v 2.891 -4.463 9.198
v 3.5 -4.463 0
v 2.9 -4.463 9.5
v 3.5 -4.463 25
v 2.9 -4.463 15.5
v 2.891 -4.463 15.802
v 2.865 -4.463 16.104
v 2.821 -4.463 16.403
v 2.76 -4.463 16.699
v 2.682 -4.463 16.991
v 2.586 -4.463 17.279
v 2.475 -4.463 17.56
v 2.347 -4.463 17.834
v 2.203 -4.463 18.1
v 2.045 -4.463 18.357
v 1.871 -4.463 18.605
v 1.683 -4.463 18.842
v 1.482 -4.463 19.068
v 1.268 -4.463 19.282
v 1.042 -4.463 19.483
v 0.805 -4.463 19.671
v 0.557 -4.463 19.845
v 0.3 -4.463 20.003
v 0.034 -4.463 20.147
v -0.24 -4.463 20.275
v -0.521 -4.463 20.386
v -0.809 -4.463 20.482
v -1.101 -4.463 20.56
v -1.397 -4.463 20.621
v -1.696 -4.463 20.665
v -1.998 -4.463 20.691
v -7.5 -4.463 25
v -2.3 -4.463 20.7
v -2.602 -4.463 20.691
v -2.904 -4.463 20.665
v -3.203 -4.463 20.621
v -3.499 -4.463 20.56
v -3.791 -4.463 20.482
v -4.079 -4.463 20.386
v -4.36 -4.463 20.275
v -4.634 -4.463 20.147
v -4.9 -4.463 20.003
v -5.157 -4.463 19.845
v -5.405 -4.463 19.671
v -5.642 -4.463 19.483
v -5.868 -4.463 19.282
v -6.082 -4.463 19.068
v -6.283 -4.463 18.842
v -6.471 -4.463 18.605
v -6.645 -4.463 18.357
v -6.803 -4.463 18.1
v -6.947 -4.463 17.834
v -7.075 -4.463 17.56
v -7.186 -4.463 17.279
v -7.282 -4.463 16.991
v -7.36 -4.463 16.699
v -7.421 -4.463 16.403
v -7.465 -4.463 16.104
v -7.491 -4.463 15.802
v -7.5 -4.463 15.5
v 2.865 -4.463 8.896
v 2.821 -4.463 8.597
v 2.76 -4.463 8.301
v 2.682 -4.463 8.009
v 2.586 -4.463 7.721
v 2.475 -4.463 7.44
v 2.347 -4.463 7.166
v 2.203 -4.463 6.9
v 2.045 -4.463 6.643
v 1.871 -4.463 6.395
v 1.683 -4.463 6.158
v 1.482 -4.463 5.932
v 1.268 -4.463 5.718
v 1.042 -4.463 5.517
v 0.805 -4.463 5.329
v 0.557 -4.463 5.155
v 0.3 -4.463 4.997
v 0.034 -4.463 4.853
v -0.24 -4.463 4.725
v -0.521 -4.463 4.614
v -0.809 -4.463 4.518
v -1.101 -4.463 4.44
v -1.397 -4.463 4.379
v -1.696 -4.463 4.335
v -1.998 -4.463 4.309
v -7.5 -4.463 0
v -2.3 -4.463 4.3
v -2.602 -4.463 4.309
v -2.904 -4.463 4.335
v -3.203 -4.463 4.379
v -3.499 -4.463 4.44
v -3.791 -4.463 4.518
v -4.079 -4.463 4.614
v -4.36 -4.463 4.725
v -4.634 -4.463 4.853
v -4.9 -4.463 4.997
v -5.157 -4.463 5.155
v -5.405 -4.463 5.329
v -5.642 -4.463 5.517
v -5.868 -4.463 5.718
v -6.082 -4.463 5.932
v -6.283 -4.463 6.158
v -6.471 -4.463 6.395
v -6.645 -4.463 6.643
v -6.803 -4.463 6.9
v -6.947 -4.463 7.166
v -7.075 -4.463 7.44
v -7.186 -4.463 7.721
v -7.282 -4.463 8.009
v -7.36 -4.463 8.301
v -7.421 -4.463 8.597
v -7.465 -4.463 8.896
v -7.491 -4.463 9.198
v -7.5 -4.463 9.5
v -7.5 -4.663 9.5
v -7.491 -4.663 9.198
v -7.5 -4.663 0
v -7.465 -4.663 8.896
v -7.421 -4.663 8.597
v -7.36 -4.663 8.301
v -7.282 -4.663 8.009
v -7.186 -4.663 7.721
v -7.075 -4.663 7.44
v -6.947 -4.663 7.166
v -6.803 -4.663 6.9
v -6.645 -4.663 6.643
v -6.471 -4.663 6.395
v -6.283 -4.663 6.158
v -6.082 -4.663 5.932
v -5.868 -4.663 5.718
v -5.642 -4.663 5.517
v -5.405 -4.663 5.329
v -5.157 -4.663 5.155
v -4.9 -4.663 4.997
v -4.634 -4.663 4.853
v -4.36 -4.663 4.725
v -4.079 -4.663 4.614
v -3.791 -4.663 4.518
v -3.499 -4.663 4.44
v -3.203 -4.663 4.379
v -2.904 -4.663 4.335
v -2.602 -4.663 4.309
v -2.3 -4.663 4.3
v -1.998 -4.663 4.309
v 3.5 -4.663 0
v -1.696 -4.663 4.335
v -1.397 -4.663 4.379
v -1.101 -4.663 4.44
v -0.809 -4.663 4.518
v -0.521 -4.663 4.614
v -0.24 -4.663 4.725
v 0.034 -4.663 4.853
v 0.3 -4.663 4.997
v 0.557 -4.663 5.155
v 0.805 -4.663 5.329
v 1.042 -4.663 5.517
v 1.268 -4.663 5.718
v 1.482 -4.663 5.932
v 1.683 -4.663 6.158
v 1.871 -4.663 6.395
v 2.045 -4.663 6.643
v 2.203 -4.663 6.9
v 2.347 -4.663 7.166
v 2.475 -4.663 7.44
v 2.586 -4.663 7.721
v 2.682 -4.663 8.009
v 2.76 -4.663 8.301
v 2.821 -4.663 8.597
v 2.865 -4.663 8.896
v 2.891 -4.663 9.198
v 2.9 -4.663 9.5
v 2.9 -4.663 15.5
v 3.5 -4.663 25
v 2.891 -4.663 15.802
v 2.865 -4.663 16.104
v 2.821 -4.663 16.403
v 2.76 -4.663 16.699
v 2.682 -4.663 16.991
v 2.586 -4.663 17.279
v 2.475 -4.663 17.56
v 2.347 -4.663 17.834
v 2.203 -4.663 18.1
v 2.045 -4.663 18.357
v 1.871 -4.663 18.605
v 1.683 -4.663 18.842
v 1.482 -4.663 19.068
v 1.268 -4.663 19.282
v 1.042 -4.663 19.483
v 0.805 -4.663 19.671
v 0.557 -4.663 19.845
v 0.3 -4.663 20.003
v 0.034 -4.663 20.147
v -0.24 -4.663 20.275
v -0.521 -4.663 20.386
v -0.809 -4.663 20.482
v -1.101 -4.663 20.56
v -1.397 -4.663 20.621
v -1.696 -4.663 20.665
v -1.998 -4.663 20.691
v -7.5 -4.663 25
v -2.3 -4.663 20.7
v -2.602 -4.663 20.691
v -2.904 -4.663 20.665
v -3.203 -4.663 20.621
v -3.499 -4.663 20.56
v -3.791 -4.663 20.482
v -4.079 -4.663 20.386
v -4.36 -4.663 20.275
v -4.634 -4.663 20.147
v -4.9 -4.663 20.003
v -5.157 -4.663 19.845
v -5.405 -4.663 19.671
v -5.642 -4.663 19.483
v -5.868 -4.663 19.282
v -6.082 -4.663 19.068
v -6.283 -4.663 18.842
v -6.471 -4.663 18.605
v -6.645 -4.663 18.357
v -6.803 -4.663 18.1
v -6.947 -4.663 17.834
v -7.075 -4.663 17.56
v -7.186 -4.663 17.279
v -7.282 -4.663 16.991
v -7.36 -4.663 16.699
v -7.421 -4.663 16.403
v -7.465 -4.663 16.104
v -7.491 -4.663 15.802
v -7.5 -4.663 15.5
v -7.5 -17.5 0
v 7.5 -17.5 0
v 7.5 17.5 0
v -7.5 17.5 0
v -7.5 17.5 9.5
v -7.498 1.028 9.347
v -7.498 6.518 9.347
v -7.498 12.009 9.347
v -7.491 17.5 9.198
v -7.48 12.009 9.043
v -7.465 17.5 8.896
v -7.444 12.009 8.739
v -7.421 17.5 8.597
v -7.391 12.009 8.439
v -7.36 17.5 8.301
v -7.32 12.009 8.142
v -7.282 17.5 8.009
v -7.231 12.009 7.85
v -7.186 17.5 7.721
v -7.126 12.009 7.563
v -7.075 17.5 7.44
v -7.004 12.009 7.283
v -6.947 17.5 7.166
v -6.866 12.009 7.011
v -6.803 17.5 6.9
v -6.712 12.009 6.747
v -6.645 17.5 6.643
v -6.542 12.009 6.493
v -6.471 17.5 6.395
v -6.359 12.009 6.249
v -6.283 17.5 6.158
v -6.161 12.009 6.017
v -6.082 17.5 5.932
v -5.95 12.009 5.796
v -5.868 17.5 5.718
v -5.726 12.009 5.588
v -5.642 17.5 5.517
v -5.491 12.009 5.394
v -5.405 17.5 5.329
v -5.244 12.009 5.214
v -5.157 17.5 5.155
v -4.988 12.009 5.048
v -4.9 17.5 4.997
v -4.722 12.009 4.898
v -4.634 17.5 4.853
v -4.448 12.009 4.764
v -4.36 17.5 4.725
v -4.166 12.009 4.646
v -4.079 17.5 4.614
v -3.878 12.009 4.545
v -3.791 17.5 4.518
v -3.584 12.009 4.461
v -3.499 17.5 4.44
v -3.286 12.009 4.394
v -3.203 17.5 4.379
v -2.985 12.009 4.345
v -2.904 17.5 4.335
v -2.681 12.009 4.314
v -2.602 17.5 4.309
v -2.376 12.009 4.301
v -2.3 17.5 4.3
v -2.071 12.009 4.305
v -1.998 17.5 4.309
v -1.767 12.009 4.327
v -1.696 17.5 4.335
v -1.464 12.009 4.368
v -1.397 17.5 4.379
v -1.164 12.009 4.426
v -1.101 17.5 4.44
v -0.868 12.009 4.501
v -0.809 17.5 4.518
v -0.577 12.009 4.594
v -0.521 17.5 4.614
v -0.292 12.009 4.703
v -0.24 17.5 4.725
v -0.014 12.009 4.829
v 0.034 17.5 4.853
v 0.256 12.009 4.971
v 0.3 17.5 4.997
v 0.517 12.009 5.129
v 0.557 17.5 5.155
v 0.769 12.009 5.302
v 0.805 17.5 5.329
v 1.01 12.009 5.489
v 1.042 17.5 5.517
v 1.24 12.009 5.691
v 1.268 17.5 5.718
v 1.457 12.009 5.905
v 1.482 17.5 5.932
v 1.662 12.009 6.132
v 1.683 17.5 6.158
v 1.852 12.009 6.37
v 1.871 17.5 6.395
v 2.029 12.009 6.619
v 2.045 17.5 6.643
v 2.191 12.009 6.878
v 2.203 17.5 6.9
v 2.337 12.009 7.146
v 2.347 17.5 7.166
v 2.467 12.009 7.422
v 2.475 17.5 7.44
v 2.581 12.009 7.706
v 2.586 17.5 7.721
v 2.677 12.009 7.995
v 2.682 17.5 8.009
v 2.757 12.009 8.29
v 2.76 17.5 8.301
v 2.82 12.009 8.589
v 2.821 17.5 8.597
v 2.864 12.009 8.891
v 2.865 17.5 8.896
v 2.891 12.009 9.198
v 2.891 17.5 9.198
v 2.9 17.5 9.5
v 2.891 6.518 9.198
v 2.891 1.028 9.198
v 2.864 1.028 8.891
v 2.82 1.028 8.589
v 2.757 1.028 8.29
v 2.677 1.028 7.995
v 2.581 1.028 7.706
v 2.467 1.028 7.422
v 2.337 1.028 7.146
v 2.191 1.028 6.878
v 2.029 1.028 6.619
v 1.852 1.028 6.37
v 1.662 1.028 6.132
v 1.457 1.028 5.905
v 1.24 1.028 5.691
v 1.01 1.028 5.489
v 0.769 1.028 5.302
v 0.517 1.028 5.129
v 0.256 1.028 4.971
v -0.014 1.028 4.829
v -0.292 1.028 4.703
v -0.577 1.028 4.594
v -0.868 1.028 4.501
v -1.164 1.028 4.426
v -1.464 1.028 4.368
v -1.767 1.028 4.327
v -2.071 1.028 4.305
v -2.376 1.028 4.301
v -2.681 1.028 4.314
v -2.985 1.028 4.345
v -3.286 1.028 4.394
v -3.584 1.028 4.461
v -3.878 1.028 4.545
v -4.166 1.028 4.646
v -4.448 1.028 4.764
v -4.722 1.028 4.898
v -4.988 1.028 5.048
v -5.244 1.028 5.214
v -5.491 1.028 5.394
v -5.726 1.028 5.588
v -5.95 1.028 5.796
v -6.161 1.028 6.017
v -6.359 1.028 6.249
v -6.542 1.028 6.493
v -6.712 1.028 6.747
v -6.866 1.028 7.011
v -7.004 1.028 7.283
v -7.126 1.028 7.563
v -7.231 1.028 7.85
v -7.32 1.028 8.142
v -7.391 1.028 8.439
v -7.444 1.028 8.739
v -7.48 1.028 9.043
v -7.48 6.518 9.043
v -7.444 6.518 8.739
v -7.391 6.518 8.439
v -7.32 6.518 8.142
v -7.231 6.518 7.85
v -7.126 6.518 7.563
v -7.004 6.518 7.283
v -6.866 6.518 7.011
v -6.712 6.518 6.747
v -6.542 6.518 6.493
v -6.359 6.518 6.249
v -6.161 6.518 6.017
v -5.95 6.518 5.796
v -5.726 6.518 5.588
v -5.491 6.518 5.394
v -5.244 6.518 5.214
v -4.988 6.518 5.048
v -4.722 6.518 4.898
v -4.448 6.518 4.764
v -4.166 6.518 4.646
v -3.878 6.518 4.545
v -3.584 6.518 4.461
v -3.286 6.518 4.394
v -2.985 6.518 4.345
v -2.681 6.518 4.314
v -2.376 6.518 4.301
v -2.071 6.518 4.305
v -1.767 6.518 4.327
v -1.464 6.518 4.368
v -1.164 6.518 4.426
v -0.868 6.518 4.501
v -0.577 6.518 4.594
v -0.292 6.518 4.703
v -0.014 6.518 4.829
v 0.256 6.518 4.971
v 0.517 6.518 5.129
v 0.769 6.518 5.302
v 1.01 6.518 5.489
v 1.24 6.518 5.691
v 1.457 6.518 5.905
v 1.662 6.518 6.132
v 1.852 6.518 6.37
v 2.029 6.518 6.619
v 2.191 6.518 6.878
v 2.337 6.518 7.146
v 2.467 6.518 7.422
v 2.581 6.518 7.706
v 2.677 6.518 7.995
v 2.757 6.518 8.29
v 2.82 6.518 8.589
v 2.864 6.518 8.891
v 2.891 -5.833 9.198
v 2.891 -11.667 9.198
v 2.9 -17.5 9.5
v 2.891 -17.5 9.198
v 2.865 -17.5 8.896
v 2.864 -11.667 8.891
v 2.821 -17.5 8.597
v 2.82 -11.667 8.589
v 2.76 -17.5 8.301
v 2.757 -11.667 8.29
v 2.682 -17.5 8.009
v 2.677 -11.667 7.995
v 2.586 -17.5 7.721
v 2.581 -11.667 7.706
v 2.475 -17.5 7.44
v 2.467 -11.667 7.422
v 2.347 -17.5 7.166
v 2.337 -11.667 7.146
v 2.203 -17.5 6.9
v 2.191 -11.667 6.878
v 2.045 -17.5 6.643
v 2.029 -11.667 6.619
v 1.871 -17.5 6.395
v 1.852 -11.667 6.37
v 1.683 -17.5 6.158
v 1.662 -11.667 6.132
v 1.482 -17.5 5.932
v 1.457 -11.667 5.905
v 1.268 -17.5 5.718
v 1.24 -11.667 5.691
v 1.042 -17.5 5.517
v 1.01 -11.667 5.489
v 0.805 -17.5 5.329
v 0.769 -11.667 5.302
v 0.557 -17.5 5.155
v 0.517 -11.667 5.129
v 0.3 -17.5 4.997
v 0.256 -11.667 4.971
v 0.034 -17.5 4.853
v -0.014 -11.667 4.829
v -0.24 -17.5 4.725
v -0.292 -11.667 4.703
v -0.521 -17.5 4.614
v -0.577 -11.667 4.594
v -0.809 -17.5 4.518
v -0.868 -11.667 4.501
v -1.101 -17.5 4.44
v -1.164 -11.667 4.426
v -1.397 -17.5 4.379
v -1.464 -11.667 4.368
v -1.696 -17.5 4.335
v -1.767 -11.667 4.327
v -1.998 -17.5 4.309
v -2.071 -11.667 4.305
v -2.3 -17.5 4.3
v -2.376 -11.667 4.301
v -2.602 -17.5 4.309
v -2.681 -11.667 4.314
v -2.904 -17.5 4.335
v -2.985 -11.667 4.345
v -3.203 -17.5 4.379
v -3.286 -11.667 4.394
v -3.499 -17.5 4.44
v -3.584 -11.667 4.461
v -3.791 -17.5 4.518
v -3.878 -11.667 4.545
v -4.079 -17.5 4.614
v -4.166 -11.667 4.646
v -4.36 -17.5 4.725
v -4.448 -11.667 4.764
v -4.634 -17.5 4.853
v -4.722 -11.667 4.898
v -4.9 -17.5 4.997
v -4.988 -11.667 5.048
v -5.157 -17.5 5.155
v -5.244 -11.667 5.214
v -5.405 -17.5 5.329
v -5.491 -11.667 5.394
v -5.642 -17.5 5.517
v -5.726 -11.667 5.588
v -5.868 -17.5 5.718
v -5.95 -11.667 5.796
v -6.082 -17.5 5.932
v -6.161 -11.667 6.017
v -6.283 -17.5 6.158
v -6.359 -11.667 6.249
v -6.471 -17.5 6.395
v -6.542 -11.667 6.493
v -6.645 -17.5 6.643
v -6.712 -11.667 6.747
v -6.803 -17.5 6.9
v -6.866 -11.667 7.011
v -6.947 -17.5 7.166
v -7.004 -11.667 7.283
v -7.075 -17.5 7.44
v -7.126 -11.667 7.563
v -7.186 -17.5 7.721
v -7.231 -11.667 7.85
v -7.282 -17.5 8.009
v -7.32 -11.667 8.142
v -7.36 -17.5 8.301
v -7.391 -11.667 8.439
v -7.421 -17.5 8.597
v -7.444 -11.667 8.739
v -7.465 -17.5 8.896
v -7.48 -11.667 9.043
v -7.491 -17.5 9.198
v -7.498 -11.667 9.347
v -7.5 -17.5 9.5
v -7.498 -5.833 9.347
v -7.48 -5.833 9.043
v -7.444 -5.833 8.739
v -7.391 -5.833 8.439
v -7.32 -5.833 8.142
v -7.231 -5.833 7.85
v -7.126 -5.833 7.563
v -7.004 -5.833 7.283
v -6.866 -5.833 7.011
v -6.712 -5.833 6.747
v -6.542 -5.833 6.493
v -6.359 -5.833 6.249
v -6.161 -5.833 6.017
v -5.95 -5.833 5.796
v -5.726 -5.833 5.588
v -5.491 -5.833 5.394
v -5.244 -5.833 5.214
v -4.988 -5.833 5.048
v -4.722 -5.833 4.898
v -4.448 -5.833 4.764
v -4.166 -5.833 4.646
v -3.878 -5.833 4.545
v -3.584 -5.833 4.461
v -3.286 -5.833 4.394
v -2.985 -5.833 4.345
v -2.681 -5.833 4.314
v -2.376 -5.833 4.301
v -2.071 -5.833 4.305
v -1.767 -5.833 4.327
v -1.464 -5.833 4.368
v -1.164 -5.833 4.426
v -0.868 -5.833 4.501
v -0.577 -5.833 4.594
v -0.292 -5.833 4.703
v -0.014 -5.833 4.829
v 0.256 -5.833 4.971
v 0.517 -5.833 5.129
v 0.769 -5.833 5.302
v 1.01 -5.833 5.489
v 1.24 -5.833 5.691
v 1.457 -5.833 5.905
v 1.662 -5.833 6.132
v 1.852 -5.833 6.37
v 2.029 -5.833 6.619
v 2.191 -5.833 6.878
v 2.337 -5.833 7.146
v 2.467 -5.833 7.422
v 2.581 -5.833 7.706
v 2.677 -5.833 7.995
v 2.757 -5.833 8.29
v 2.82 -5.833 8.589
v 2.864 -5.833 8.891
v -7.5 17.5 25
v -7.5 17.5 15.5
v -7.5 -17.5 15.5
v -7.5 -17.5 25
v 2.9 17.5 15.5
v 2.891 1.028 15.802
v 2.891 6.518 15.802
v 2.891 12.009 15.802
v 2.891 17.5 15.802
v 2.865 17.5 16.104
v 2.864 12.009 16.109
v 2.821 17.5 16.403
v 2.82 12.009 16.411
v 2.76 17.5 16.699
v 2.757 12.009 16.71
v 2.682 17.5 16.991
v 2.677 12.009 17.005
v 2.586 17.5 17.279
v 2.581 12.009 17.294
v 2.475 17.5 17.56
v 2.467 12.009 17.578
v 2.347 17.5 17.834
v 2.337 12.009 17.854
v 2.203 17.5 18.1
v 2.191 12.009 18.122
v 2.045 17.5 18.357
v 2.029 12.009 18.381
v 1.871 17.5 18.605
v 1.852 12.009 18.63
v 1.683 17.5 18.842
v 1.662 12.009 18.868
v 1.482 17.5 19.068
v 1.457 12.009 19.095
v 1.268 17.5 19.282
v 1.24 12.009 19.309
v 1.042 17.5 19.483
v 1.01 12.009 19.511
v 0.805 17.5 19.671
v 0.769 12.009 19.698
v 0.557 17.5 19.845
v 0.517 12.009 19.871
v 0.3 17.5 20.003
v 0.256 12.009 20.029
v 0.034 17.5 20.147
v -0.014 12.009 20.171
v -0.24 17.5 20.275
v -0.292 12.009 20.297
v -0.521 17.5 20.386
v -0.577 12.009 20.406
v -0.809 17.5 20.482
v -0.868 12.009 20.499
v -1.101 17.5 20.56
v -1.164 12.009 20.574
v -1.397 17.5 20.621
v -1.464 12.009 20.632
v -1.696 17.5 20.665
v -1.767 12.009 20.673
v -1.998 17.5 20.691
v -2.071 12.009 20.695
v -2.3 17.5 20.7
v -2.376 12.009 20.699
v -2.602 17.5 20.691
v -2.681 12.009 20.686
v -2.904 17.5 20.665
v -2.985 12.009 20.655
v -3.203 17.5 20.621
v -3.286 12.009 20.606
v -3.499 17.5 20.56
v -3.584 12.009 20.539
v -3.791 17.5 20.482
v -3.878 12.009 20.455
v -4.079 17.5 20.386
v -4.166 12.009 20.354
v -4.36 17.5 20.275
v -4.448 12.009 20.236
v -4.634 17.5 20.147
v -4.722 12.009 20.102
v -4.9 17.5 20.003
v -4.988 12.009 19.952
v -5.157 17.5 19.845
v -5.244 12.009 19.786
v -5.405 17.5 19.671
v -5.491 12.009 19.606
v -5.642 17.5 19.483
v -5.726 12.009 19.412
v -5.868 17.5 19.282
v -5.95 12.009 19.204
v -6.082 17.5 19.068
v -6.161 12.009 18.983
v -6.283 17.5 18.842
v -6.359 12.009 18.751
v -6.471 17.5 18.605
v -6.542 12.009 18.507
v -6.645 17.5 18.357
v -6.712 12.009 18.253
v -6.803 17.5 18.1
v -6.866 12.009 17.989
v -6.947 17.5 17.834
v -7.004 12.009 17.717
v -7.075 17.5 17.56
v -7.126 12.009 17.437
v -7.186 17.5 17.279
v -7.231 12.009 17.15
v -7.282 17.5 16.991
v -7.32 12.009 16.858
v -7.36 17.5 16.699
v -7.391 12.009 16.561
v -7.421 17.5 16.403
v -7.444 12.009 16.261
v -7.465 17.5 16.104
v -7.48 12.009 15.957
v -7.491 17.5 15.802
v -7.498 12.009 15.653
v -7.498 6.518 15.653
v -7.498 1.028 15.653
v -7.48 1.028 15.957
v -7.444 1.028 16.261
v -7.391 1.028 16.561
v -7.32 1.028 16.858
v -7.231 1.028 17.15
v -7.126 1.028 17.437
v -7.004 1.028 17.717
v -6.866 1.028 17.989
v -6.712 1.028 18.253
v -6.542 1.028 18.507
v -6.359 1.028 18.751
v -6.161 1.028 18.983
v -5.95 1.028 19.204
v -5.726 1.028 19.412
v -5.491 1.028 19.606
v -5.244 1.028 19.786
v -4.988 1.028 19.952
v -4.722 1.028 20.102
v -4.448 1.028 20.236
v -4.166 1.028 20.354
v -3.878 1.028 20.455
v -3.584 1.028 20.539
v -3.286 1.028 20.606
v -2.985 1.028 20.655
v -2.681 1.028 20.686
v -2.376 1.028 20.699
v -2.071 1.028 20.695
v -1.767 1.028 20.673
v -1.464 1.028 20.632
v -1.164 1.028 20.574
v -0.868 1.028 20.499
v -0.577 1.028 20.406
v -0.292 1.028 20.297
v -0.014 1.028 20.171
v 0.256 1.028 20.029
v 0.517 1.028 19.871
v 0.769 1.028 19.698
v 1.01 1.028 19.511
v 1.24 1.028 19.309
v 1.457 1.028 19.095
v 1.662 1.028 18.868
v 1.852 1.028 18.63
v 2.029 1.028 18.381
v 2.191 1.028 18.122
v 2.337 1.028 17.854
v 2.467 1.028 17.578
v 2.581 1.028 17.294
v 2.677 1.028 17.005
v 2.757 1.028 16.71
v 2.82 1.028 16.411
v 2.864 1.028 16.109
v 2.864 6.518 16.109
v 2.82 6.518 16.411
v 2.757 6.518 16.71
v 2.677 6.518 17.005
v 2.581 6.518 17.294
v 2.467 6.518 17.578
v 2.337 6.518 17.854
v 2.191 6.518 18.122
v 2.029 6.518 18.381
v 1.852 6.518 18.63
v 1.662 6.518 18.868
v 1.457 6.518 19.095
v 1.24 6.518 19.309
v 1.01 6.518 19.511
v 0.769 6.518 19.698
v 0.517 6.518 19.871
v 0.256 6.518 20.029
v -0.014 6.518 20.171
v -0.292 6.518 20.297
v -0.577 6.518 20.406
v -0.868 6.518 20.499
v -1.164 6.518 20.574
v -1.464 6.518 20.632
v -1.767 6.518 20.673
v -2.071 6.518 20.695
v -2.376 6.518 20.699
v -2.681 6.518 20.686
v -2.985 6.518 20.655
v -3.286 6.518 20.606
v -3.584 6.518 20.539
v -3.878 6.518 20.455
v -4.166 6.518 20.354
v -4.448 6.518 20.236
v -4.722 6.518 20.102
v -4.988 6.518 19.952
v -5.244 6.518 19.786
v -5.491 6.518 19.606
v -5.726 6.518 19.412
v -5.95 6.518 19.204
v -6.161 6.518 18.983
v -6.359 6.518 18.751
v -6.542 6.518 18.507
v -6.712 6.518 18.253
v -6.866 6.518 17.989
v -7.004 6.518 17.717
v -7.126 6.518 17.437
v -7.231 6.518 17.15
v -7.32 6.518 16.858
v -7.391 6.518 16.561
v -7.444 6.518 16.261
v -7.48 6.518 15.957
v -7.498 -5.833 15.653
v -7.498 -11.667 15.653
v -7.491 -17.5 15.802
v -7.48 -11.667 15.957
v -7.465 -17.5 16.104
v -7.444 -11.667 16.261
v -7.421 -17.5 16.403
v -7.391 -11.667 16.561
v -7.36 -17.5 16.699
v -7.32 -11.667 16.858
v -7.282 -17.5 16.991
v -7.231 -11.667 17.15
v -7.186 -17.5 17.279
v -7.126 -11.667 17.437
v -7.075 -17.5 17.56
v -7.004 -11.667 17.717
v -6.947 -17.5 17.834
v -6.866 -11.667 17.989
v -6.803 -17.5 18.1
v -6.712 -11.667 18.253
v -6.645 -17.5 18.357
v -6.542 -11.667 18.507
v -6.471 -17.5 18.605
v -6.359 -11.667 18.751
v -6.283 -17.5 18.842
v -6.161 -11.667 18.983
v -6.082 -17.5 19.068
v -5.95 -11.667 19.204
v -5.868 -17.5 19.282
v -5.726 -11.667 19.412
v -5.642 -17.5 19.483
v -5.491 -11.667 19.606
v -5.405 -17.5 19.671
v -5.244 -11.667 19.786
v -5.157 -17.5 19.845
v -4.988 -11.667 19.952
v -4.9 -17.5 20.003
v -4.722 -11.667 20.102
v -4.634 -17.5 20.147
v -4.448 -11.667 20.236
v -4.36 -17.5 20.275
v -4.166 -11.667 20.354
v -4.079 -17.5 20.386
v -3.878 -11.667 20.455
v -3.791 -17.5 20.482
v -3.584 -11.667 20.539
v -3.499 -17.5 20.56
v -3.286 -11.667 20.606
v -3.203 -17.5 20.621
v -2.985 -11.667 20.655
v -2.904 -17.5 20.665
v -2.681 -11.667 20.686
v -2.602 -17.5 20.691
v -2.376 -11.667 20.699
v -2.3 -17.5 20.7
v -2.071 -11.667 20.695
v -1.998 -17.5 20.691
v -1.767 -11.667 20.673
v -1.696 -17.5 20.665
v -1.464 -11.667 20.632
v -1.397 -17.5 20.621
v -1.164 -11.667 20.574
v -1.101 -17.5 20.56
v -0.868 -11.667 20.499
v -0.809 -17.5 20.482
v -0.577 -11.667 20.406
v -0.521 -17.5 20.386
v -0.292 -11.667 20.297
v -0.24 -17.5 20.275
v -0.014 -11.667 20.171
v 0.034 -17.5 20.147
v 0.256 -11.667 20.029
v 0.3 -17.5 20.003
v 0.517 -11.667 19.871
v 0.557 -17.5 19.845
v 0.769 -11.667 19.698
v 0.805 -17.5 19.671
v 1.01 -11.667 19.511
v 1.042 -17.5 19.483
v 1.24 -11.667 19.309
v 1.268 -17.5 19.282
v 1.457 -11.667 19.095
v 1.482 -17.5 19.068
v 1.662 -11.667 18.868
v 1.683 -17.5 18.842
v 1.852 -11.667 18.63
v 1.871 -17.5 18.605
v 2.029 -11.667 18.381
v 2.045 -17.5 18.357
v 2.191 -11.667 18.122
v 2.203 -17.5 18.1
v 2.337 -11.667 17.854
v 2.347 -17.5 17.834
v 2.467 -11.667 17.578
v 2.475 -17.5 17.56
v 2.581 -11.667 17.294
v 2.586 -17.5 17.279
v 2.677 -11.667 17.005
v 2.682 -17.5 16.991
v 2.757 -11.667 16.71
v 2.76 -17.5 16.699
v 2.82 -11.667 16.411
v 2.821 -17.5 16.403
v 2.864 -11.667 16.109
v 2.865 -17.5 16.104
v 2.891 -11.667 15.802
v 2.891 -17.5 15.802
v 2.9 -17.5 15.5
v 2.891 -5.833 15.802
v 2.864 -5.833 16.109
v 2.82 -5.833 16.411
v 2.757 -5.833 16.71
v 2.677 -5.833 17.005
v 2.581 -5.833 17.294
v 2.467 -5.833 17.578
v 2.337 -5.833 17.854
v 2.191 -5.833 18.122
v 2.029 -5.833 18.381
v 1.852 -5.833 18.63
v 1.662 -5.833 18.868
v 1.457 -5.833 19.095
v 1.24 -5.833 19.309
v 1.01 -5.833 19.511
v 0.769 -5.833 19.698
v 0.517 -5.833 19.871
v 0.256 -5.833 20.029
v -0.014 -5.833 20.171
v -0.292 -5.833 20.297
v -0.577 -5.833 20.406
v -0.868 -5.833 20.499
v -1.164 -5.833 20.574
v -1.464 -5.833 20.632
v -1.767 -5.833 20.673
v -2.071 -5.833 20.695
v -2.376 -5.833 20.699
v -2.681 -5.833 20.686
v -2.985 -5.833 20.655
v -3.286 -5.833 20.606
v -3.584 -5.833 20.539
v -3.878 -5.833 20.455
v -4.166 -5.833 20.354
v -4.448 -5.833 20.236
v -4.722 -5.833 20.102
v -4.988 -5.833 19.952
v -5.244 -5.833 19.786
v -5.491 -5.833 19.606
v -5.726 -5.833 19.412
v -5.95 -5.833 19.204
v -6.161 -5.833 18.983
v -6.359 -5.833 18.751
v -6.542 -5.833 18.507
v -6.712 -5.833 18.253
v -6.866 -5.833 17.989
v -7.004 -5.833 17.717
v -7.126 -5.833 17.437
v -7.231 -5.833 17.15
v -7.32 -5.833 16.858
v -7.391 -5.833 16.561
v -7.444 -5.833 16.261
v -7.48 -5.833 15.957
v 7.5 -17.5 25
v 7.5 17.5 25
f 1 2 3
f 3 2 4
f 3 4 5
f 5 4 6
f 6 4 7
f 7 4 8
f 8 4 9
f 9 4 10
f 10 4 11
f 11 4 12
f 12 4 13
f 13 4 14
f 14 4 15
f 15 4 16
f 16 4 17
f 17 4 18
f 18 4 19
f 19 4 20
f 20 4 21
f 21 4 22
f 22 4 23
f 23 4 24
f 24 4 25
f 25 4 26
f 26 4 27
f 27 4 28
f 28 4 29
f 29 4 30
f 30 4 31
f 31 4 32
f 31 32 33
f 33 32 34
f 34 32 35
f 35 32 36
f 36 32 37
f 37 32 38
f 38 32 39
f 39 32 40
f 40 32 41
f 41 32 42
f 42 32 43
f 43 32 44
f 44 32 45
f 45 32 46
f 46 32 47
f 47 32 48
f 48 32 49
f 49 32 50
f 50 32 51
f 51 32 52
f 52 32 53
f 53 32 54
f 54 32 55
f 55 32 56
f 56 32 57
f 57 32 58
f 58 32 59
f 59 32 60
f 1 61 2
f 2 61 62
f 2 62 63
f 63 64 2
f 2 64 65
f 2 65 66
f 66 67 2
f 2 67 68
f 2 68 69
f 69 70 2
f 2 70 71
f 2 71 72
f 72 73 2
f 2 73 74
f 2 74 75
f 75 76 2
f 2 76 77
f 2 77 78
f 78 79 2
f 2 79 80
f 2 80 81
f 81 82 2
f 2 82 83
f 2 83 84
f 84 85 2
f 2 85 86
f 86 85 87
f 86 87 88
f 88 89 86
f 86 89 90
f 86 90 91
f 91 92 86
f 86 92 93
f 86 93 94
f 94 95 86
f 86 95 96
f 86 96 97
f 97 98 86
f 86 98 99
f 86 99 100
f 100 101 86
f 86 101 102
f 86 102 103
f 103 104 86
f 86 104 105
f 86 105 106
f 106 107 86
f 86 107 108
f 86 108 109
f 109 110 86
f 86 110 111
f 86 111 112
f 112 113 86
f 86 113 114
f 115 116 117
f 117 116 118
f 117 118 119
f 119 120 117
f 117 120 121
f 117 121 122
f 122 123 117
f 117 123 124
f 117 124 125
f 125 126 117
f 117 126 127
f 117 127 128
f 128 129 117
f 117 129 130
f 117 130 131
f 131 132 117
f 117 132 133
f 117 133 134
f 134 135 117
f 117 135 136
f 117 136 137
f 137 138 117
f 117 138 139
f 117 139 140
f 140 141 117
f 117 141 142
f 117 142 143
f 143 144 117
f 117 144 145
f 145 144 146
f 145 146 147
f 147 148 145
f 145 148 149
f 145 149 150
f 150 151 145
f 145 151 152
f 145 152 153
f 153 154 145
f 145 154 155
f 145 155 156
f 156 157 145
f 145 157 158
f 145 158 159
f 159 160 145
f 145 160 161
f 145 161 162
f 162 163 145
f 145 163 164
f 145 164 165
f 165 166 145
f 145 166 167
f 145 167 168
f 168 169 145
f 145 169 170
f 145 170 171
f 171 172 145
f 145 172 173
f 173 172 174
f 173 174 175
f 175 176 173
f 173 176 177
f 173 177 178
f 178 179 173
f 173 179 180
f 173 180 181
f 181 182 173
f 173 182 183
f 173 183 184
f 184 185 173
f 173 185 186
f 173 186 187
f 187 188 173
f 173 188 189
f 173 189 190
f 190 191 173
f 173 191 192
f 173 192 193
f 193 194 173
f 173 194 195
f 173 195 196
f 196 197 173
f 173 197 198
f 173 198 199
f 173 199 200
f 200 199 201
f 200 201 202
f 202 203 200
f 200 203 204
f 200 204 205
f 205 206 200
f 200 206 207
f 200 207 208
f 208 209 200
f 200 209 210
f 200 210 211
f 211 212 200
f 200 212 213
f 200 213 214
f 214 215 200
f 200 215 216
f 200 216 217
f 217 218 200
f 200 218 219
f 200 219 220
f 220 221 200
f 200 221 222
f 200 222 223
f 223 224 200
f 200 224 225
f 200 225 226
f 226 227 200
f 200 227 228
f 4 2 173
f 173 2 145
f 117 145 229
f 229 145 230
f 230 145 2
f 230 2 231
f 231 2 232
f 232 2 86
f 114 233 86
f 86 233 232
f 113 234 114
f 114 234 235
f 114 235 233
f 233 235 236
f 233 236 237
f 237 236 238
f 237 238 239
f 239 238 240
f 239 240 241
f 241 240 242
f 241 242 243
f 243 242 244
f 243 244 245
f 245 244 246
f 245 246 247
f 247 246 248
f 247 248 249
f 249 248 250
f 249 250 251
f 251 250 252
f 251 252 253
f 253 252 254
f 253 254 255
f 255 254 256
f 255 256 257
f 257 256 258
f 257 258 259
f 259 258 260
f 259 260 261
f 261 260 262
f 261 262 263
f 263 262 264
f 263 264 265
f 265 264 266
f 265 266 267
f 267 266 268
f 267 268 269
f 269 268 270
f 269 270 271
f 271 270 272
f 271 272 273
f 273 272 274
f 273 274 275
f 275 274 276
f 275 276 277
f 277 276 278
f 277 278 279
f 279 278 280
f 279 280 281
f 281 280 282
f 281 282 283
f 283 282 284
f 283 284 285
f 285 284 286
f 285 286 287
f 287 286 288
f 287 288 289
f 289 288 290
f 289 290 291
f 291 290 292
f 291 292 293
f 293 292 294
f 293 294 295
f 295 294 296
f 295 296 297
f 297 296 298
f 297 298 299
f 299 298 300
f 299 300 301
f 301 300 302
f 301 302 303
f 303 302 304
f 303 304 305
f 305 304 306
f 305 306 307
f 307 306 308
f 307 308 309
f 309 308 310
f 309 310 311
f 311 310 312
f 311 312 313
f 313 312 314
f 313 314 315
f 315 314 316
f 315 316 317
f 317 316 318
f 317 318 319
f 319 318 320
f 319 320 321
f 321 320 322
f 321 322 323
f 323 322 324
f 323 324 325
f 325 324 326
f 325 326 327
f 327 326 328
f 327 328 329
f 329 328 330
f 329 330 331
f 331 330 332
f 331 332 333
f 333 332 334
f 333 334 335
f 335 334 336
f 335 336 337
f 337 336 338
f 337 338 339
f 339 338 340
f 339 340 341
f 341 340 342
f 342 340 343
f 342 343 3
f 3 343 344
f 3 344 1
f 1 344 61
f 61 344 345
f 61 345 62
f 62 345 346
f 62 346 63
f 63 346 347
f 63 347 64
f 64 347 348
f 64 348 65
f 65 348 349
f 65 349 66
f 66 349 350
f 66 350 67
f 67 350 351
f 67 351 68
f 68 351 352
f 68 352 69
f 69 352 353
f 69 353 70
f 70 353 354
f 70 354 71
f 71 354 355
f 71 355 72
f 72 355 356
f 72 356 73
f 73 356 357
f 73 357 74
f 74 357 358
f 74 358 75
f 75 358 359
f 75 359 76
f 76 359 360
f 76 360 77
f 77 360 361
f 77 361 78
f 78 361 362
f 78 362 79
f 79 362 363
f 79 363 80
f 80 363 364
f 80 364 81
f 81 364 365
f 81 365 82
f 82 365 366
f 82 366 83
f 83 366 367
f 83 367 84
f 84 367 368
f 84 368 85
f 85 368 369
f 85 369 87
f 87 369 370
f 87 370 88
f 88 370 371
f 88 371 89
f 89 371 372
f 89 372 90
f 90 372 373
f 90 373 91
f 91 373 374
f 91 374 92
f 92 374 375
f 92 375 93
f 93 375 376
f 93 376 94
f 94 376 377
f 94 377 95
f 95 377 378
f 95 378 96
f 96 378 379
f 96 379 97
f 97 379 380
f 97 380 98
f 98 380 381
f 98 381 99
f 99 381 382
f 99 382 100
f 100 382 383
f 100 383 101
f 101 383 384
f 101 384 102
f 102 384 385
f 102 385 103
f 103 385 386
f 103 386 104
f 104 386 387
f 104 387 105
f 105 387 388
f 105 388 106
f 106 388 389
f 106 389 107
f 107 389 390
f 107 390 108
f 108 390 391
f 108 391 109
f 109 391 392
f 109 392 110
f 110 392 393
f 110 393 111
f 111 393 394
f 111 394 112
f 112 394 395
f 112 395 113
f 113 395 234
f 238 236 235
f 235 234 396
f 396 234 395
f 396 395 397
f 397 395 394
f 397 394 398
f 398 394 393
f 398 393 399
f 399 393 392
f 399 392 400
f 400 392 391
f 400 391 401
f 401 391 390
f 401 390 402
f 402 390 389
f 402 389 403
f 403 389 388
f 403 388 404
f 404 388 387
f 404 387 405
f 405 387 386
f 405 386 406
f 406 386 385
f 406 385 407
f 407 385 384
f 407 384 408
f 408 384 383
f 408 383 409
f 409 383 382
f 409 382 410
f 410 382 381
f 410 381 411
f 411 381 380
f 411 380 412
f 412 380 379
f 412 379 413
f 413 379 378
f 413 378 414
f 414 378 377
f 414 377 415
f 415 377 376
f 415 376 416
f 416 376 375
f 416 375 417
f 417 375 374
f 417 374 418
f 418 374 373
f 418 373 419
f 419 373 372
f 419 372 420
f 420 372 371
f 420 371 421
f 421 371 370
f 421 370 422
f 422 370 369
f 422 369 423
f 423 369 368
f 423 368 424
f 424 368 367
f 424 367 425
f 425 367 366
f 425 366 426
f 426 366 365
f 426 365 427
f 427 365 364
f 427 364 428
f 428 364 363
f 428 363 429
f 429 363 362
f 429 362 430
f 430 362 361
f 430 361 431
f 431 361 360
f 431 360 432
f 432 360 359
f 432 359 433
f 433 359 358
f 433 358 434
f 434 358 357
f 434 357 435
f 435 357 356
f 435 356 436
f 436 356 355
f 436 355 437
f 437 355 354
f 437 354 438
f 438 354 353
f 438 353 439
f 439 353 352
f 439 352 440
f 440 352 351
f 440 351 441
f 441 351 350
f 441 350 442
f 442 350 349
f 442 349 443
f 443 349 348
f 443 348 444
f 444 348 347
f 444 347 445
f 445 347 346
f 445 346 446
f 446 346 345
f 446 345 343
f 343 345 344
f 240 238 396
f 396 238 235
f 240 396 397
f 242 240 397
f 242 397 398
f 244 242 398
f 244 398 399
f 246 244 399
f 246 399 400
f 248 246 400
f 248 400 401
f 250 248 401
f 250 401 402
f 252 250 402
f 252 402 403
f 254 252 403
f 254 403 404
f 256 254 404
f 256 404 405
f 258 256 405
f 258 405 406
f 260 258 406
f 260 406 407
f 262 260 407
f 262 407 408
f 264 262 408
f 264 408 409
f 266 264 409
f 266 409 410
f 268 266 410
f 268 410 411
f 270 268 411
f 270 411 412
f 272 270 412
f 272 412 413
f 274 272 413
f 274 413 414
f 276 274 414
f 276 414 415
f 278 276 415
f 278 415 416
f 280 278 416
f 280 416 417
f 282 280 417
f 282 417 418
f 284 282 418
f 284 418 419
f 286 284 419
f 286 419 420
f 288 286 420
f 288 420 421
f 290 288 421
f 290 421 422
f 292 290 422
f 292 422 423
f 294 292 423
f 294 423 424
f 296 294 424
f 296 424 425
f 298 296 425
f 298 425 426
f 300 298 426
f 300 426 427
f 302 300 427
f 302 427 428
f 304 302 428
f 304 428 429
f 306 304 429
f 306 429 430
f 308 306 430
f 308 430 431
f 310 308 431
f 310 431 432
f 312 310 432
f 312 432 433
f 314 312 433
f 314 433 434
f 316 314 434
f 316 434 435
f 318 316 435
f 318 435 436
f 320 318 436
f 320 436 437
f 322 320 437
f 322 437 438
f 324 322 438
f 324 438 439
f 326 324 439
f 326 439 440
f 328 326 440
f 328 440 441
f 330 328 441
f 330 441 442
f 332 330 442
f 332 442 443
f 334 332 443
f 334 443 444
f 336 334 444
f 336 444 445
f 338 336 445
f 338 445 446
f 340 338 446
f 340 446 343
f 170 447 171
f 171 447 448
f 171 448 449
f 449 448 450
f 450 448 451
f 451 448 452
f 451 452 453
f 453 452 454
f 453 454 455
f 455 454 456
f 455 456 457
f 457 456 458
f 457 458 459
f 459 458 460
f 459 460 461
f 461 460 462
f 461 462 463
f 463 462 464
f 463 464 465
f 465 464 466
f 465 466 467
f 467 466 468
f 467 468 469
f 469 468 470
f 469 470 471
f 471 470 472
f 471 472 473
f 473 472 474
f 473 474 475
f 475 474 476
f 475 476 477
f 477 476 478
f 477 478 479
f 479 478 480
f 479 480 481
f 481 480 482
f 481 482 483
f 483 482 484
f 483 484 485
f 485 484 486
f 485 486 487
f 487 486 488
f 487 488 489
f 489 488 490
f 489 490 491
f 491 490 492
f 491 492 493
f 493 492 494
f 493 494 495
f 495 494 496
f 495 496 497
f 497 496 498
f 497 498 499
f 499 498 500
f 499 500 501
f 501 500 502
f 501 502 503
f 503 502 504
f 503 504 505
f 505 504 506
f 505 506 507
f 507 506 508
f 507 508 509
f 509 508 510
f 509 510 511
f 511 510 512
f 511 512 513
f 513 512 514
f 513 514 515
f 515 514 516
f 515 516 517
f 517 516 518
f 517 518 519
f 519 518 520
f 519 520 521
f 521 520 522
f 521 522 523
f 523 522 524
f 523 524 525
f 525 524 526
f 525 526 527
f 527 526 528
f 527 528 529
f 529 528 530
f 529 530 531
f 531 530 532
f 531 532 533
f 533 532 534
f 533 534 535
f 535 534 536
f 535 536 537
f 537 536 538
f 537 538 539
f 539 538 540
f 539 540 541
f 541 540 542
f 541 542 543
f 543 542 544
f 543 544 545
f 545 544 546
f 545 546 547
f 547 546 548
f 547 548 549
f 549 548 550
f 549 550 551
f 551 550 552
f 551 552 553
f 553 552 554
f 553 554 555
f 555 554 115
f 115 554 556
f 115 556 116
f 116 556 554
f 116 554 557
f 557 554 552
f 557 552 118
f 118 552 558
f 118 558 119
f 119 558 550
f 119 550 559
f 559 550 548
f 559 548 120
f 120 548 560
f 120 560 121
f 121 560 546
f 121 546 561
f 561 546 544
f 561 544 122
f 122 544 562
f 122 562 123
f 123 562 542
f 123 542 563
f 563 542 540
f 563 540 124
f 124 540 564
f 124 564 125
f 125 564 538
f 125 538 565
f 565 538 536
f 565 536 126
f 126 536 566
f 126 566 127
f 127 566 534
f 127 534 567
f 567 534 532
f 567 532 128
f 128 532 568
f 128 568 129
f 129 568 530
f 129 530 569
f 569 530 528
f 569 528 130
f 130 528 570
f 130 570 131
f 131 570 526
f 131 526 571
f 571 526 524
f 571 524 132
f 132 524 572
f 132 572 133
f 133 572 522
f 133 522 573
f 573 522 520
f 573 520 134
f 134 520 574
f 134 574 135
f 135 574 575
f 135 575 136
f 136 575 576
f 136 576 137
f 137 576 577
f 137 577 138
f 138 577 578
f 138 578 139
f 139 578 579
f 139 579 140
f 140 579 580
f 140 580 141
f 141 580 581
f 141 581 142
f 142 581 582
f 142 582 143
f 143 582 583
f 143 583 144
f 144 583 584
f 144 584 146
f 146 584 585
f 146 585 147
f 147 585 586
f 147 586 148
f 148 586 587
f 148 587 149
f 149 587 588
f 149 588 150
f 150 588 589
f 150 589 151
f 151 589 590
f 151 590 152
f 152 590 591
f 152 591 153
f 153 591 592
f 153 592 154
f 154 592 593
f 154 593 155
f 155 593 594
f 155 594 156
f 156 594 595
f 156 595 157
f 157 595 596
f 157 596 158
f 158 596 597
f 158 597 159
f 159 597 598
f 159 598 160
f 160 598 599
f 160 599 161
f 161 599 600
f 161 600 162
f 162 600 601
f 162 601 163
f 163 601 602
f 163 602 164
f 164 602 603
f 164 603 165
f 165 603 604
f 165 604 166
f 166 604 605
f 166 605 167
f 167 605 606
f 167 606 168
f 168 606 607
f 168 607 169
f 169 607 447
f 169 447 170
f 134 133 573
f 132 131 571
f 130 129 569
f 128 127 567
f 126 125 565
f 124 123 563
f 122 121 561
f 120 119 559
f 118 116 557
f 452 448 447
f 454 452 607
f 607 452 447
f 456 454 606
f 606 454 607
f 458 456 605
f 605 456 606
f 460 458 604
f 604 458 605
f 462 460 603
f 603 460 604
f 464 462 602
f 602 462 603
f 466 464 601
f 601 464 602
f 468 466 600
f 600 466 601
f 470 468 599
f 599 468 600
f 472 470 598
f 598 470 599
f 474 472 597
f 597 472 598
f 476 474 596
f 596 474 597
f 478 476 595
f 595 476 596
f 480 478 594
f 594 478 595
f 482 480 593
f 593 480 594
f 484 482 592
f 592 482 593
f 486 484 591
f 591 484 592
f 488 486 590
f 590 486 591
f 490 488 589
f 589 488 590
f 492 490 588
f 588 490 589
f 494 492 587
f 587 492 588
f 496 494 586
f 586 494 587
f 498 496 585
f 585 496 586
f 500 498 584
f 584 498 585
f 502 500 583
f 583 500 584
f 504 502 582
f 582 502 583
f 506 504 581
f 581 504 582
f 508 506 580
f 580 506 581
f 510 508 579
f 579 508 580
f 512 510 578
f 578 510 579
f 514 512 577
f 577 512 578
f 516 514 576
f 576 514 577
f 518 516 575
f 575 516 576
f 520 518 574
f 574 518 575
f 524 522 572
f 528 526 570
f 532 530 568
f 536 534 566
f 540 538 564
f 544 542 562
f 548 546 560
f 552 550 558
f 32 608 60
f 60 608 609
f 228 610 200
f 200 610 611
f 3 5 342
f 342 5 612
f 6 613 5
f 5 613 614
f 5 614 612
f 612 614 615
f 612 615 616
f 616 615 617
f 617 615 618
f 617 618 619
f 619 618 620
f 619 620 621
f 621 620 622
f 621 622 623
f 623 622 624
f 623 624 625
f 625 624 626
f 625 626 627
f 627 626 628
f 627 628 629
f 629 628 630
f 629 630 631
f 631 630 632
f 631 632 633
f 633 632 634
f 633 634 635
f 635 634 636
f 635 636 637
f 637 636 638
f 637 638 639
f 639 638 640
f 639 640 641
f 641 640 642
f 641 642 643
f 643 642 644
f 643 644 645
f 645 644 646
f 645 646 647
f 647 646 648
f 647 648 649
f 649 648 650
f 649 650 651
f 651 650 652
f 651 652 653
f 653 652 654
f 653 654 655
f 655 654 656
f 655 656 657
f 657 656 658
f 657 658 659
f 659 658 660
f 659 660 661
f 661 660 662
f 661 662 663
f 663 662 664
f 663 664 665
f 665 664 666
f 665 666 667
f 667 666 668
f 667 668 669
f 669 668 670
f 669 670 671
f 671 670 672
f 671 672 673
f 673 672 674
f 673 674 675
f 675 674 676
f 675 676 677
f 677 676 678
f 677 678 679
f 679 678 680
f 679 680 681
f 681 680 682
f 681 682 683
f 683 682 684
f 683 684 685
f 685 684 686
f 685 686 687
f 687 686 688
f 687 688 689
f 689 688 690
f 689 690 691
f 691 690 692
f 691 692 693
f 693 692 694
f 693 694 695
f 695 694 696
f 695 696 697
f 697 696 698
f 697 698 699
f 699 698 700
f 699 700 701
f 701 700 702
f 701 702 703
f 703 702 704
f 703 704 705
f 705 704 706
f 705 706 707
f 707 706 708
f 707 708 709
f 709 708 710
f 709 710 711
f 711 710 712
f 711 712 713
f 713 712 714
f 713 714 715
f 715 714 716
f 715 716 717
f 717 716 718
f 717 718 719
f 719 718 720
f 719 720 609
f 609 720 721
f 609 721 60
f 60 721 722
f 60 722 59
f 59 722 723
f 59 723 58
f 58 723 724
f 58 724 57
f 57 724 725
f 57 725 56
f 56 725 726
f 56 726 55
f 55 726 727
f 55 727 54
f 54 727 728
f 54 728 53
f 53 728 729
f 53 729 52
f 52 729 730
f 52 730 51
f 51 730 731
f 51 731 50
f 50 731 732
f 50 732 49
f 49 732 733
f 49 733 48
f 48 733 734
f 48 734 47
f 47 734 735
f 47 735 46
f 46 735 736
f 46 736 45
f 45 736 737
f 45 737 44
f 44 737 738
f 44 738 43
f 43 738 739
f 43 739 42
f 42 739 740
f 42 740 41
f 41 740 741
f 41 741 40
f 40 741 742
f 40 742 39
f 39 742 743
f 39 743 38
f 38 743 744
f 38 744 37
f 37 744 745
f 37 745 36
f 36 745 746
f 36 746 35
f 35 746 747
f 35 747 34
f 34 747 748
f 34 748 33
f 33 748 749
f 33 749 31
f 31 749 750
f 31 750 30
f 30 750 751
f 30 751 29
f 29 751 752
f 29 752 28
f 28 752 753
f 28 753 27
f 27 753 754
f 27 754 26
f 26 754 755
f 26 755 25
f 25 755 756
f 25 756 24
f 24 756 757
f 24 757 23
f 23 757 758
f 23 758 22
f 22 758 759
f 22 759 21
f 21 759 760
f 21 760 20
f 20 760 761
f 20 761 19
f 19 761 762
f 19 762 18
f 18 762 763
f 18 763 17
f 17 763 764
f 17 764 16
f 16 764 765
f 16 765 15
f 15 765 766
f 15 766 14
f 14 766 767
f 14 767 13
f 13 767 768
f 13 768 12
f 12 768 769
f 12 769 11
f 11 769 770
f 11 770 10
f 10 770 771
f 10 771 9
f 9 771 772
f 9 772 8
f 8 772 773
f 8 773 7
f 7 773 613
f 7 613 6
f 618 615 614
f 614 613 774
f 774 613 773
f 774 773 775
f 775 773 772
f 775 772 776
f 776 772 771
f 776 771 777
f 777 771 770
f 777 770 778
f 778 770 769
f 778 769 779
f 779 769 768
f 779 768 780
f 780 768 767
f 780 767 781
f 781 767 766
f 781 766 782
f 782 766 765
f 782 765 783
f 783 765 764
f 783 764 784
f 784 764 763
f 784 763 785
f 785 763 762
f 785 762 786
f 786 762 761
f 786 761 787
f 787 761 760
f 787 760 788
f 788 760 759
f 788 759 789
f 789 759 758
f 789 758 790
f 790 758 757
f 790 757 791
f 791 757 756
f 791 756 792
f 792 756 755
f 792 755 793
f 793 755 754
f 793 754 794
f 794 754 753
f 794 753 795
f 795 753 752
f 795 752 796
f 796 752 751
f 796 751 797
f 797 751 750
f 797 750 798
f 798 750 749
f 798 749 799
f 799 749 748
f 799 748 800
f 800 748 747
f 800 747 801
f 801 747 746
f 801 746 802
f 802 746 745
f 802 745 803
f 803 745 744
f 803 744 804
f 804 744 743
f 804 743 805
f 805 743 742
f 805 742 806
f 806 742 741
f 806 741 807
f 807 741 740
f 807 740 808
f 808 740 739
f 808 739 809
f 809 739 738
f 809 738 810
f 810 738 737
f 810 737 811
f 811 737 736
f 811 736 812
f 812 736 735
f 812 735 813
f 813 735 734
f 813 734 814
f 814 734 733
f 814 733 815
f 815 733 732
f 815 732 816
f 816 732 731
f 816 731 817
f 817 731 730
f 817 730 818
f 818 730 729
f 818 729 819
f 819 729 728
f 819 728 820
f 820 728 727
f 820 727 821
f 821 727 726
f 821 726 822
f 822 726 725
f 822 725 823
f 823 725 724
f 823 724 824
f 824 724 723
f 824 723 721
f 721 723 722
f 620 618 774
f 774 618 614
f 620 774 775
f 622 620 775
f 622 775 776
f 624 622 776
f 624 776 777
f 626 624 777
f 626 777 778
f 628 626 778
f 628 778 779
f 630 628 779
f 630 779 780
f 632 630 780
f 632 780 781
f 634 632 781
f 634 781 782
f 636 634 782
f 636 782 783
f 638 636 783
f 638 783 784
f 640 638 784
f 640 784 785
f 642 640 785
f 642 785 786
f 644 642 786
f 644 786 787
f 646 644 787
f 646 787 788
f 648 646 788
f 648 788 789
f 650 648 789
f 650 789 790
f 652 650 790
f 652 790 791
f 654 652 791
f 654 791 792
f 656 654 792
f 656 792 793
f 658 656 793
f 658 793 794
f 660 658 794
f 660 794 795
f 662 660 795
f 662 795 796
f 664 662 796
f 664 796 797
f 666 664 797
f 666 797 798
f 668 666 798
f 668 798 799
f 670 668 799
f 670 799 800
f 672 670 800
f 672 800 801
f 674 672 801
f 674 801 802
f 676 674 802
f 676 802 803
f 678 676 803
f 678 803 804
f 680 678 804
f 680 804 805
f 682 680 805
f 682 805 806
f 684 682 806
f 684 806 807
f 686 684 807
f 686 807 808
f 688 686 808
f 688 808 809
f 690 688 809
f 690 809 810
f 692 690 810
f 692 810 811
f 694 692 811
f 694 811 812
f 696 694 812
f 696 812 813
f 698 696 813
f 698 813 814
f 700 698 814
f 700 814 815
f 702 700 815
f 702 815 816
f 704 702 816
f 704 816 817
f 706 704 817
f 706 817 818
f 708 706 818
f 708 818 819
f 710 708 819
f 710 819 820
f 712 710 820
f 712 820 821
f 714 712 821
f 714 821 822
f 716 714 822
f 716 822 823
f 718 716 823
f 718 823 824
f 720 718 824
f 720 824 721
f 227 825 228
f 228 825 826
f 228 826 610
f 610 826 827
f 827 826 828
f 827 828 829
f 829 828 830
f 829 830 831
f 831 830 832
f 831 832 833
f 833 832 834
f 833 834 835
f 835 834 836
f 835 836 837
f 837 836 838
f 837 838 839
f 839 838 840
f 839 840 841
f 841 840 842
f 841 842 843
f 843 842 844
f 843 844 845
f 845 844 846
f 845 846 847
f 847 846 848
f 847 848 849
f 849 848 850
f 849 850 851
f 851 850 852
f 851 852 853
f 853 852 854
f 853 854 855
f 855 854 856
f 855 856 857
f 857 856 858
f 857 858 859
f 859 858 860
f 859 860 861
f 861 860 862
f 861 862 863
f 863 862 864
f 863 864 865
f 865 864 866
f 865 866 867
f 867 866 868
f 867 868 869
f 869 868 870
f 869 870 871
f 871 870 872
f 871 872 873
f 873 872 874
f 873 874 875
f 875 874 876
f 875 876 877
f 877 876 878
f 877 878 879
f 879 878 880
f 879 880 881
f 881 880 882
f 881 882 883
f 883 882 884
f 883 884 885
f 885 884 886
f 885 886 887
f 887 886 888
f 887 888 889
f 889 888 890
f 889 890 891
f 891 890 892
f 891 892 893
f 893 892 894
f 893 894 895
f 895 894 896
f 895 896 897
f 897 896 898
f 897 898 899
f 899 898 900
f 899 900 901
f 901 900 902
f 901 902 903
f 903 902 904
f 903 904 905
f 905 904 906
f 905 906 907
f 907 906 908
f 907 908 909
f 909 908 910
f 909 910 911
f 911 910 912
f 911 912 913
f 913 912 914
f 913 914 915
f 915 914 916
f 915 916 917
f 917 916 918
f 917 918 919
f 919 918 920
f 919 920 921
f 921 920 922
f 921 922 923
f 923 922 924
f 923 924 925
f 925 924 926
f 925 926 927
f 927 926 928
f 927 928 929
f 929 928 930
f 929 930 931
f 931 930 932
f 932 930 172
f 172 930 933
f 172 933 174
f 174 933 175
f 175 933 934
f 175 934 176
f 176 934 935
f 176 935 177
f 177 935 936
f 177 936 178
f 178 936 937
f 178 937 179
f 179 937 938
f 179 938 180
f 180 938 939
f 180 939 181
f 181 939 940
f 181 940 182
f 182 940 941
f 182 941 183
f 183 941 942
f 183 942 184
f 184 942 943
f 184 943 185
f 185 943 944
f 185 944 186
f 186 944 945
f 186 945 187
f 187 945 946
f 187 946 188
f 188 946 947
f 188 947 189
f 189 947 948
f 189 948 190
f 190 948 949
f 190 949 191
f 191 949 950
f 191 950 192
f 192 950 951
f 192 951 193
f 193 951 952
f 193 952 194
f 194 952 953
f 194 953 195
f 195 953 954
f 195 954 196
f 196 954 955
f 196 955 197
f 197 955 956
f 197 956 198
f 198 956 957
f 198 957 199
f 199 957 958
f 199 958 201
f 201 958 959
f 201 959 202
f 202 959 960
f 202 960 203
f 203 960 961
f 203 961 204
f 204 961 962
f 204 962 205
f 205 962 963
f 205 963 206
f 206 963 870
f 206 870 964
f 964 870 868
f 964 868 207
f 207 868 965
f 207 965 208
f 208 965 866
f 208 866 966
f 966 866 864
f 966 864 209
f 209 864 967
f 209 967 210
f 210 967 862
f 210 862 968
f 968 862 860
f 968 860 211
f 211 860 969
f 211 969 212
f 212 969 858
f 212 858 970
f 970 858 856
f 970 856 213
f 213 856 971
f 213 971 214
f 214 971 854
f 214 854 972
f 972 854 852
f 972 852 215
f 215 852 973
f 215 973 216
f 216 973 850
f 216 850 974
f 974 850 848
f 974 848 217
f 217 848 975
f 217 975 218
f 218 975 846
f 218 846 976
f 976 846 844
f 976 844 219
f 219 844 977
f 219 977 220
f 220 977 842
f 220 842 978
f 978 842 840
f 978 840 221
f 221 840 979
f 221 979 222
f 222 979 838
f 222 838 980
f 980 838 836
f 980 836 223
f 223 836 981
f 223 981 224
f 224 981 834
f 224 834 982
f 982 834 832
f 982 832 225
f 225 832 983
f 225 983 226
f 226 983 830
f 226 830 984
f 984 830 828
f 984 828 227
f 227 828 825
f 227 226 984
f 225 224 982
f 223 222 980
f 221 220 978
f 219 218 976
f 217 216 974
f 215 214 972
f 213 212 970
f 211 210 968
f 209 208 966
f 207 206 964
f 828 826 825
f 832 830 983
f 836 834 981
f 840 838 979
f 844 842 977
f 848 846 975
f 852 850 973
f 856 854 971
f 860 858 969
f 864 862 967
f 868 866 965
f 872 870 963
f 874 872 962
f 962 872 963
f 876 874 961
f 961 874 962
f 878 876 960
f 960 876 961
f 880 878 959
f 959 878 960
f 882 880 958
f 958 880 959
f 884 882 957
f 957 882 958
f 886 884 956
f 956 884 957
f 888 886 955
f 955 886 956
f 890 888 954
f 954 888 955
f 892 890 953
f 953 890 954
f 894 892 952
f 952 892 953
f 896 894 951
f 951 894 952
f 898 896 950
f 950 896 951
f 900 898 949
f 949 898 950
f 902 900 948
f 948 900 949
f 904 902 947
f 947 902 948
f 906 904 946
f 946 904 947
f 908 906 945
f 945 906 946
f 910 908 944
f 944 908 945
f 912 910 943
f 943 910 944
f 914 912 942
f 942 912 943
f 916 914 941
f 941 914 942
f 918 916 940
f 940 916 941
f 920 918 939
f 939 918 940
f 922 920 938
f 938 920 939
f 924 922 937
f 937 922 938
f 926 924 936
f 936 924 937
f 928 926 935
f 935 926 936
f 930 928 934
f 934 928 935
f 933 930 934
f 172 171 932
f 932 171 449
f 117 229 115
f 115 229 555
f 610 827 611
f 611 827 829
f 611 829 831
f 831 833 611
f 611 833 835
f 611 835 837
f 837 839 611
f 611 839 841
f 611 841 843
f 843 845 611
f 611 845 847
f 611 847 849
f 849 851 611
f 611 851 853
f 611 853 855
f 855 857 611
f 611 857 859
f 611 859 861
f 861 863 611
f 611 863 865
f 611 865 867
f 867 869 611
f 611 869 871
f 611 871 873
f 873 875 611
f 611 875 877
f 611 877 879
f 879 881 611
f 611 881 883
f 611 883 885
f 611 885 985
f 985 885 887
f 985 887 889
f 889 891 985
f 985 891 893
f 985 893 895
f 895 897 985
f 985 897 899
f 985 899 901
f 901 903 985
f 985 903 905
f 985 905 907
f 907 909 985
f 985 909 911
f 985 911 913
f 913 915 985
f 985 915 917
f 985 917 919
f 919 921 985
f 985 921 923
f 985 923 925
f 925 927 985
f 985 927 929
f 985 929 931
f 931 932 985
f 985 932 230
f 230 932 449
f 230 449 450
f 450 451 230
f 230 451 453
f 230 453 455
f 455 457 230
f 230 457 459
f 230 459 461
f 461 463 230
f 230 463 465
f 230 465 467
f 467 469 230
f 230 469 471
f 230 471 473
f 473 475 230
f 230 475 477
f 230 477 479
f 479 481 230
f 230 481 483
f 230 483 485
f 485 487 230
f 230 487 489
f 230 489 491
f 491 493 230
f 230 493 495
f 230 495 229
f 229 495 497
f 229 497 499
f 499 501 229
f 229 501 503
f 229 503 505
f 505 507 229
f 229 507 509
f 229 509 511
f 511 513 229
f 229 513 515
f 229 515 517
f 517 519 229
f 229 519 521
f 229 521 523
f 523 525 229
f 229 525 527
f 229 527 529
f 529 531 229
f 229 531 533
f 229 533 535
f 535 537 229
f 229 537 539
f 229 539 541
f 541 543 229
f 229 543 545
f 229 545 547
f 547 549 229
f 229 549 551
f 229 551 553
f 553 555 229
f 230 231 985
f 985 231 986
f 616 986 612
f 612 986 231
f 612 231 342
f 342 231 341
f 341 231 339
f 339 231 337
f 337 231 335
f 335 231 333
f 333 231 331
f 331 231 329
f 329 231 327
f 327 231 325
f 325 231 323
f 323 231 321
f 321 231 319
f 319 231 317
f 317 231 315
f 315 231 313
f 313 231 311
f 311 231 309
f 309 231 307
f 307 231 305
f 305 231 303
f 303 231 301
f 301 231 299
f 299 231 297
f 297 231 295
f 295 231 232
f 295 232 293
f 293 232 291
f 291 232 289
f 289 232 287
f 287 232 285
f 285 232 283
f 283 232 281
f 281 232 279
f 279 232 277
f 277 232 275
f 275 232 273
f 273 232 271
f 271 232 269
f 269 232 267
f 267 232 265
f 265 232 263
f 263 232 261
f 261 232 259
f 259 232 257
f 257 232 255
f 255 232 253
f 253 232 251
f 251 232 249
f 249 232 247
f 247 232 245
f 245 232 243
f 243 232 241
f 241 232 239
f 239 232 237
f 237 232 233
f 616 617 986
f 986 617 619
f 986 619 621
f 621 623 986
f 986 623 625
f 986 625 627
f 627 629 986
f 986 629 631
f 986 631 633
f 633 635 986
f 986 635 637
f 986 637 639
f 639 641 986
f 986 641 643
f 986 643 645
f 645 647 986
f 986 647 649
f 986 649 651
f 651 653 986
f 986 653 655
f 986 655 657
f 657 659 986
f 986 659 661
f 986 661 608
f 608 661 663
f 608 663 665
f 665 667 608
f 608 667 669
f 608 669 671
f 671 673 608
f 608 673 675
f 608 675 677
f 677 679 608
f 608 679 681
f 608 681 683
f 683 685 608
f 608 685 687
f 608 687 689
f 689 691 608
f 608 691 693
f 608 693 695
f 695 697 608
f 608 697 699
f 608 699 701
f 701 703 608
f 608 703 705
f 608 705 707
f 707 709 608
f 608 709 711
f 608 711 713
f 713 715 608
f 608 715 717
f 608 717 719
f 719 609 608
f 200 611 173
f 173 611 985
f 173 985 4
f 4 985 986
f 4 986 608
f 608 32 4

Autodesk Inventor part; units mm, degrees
ref_plane "YZ Plane" through (0, 0, 0) normal (1, 0, 0) x (0, 1, 0)
ref_plane "XZ Plane" through (0, 0, 0) normal (0, 1, 0) x (-1, 0, 0)
ref_plane "XY Plane" through (0, 0, 0) normal (0, 0, 1) x (1, 0, 0)
sketch "Sketch1" plane through (0, 0, 0) normal (0, 0, 1) x (1, 0, 0)
  line L0 (-7.5, 17.5) -> (7.5, 17.5)
  line L1 (7.5, 17.5) -> (7.5, -17.5)
  line L2 (7.5, -17.5) -> (-7.5, -17.5)
  line L3 (-7.5, -17.5) -> (-7.5, 17.5)
  line L4 (-7.5, 17.5) -> (7.5, -17.5) construction
  line L5 (7.5, 17.5) -> (-7.5, -17.5) construction
  point P0 (0, 0)
  dimension "d0" = 15
  dimension "d1" = 35
extrude "Extrusion1" add sketch "Sketch1" along normal blind 25
sketch "Sketch2" plane through (-7.5, 17.5, 0) normal (0, 1, 0) x (1, 0, 0)
  line L0 (15, -25) -> (0, -25) construction
  line L1 (0, 0) -> (10.4, 0) construction
  line L2 (10.4, 0) -> (10.4, -25) construction
  line L3 (10.4, -25) -> (0, -25) construction
  line L4 (0, -25) -> (0, 0) construction
  line L5 (0, 0) -> (15, 0) construction
  line L6 (5.2, 0) -> (5.2, -25) construction
  line L7 (10.4, -12.5) -> (0, -12.5) construction
  line L8 (0, 0) -> (0, -25) construction
  line L9 (10.4, -4.3) -> (0, -4.3) construction
  line L10 (0, -4.3) -> (0, -20.7) construction
  line L11 (0, -20.7) -> (10.4, -20.7) construction
  line L12 (10.4, -20.7) -> (10.4, -4.3) construction
  line L13 (10.4, -4.3) -> (0, -20.7) construction
  line L14 (0, -4.3) -> (10.4, -20.7) construction
  circle A0 centre (5.2, -9.5) radius 5.2
  circle A1 centre (5.2, -15.5) radius 5.2
  line L15 (10.4, -9.5) -> (0, -9.5)
  line L16 (0, -9.5) -> (0, -15.5)
  line L17 (0, -15.5) -> (10.4, -15.5)
  line L18 (10.4, -15.5) -> (10.4, -9.5)
  line L19 (10.4, -9.5) -> (0, -15.5) construction
  line L20 (0, -9.5) -> (10.4, -15.5) construction
  point P0 (7.5, 0)
  point P1 (5.2, -12.5)
  dimension "d4" = 10.4
  dimension "d5" = 16.4
extrude "Extrusion2" cut sketch "Sketch2" against normal blind 35
sketch "Sketch3" plane through (-7.5, -17.5, 0) normal (-1, 0, 0) x (0, 0, 1)
  line L0 (25, 35) -> (25, 0) projected
  line L1 (0, 0) -> (0, 35) projected
  line L2 (25, 13.0367) -> (0, 13.0367)
  line L3 (0, 13.0367) -> (0, 12.8367)
  line L4 (0, 12.8367) -> (25, 12.8367)
  line L5 (25, 12.8367) -> (25, 13.0367)
  point P0 (0, 17.5)
  dimension "d8" = 0.2
extrude "Extrusion3" cut sketch "Sketch3" against normal blind 11
properties part number "Cutting Tool V1"
